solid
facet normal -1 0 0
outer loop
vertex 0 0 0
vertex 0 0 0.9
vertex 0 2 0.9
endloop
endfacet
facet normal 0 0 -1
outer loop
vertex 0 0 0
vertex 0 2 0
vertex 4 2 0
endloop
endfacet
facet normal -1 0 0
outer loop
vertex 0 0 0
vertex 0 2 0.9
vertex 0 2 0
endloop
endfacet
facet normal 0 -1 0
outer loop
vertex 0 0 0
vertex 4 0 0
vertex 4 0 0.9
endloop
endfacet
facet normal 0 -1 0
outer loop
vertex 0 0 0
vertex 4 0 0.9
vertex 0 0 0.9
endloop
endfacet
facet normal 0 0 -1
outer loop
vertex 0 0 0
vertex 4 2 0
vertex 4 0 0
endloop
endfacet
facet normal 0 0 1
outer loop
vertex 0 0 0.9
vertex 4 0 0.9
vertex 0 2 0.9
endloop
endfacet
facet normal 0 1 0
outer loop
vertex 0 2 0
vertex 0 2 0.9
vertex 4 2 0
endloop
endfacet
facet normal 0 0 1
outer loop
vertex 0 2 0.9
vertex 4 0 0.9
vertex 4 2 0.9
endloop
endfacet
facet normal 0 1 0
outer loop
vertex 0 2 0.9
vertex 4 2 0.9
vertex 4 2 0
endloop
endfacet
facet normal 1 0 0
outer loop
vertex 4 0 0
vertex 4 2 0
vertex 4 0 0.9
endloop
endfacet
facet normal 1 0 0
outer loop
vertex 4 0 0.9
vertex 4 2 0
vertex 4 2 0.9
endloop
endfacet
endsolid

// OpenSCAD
/* Warning, this is a very basic generator with a lot of approximation 
input data : [VSFN, LYB, 4x2x0.9mm, 2, , D, C04-21315D]
generated by com.zoubworld.electronics.cad.model3d.Basic
Date : Sun Feb 15 10:50:49 CET 2026
*/

//body
color("black")
translate([0,0,0])
cube([4.0,2.0,0.9], center=false);
